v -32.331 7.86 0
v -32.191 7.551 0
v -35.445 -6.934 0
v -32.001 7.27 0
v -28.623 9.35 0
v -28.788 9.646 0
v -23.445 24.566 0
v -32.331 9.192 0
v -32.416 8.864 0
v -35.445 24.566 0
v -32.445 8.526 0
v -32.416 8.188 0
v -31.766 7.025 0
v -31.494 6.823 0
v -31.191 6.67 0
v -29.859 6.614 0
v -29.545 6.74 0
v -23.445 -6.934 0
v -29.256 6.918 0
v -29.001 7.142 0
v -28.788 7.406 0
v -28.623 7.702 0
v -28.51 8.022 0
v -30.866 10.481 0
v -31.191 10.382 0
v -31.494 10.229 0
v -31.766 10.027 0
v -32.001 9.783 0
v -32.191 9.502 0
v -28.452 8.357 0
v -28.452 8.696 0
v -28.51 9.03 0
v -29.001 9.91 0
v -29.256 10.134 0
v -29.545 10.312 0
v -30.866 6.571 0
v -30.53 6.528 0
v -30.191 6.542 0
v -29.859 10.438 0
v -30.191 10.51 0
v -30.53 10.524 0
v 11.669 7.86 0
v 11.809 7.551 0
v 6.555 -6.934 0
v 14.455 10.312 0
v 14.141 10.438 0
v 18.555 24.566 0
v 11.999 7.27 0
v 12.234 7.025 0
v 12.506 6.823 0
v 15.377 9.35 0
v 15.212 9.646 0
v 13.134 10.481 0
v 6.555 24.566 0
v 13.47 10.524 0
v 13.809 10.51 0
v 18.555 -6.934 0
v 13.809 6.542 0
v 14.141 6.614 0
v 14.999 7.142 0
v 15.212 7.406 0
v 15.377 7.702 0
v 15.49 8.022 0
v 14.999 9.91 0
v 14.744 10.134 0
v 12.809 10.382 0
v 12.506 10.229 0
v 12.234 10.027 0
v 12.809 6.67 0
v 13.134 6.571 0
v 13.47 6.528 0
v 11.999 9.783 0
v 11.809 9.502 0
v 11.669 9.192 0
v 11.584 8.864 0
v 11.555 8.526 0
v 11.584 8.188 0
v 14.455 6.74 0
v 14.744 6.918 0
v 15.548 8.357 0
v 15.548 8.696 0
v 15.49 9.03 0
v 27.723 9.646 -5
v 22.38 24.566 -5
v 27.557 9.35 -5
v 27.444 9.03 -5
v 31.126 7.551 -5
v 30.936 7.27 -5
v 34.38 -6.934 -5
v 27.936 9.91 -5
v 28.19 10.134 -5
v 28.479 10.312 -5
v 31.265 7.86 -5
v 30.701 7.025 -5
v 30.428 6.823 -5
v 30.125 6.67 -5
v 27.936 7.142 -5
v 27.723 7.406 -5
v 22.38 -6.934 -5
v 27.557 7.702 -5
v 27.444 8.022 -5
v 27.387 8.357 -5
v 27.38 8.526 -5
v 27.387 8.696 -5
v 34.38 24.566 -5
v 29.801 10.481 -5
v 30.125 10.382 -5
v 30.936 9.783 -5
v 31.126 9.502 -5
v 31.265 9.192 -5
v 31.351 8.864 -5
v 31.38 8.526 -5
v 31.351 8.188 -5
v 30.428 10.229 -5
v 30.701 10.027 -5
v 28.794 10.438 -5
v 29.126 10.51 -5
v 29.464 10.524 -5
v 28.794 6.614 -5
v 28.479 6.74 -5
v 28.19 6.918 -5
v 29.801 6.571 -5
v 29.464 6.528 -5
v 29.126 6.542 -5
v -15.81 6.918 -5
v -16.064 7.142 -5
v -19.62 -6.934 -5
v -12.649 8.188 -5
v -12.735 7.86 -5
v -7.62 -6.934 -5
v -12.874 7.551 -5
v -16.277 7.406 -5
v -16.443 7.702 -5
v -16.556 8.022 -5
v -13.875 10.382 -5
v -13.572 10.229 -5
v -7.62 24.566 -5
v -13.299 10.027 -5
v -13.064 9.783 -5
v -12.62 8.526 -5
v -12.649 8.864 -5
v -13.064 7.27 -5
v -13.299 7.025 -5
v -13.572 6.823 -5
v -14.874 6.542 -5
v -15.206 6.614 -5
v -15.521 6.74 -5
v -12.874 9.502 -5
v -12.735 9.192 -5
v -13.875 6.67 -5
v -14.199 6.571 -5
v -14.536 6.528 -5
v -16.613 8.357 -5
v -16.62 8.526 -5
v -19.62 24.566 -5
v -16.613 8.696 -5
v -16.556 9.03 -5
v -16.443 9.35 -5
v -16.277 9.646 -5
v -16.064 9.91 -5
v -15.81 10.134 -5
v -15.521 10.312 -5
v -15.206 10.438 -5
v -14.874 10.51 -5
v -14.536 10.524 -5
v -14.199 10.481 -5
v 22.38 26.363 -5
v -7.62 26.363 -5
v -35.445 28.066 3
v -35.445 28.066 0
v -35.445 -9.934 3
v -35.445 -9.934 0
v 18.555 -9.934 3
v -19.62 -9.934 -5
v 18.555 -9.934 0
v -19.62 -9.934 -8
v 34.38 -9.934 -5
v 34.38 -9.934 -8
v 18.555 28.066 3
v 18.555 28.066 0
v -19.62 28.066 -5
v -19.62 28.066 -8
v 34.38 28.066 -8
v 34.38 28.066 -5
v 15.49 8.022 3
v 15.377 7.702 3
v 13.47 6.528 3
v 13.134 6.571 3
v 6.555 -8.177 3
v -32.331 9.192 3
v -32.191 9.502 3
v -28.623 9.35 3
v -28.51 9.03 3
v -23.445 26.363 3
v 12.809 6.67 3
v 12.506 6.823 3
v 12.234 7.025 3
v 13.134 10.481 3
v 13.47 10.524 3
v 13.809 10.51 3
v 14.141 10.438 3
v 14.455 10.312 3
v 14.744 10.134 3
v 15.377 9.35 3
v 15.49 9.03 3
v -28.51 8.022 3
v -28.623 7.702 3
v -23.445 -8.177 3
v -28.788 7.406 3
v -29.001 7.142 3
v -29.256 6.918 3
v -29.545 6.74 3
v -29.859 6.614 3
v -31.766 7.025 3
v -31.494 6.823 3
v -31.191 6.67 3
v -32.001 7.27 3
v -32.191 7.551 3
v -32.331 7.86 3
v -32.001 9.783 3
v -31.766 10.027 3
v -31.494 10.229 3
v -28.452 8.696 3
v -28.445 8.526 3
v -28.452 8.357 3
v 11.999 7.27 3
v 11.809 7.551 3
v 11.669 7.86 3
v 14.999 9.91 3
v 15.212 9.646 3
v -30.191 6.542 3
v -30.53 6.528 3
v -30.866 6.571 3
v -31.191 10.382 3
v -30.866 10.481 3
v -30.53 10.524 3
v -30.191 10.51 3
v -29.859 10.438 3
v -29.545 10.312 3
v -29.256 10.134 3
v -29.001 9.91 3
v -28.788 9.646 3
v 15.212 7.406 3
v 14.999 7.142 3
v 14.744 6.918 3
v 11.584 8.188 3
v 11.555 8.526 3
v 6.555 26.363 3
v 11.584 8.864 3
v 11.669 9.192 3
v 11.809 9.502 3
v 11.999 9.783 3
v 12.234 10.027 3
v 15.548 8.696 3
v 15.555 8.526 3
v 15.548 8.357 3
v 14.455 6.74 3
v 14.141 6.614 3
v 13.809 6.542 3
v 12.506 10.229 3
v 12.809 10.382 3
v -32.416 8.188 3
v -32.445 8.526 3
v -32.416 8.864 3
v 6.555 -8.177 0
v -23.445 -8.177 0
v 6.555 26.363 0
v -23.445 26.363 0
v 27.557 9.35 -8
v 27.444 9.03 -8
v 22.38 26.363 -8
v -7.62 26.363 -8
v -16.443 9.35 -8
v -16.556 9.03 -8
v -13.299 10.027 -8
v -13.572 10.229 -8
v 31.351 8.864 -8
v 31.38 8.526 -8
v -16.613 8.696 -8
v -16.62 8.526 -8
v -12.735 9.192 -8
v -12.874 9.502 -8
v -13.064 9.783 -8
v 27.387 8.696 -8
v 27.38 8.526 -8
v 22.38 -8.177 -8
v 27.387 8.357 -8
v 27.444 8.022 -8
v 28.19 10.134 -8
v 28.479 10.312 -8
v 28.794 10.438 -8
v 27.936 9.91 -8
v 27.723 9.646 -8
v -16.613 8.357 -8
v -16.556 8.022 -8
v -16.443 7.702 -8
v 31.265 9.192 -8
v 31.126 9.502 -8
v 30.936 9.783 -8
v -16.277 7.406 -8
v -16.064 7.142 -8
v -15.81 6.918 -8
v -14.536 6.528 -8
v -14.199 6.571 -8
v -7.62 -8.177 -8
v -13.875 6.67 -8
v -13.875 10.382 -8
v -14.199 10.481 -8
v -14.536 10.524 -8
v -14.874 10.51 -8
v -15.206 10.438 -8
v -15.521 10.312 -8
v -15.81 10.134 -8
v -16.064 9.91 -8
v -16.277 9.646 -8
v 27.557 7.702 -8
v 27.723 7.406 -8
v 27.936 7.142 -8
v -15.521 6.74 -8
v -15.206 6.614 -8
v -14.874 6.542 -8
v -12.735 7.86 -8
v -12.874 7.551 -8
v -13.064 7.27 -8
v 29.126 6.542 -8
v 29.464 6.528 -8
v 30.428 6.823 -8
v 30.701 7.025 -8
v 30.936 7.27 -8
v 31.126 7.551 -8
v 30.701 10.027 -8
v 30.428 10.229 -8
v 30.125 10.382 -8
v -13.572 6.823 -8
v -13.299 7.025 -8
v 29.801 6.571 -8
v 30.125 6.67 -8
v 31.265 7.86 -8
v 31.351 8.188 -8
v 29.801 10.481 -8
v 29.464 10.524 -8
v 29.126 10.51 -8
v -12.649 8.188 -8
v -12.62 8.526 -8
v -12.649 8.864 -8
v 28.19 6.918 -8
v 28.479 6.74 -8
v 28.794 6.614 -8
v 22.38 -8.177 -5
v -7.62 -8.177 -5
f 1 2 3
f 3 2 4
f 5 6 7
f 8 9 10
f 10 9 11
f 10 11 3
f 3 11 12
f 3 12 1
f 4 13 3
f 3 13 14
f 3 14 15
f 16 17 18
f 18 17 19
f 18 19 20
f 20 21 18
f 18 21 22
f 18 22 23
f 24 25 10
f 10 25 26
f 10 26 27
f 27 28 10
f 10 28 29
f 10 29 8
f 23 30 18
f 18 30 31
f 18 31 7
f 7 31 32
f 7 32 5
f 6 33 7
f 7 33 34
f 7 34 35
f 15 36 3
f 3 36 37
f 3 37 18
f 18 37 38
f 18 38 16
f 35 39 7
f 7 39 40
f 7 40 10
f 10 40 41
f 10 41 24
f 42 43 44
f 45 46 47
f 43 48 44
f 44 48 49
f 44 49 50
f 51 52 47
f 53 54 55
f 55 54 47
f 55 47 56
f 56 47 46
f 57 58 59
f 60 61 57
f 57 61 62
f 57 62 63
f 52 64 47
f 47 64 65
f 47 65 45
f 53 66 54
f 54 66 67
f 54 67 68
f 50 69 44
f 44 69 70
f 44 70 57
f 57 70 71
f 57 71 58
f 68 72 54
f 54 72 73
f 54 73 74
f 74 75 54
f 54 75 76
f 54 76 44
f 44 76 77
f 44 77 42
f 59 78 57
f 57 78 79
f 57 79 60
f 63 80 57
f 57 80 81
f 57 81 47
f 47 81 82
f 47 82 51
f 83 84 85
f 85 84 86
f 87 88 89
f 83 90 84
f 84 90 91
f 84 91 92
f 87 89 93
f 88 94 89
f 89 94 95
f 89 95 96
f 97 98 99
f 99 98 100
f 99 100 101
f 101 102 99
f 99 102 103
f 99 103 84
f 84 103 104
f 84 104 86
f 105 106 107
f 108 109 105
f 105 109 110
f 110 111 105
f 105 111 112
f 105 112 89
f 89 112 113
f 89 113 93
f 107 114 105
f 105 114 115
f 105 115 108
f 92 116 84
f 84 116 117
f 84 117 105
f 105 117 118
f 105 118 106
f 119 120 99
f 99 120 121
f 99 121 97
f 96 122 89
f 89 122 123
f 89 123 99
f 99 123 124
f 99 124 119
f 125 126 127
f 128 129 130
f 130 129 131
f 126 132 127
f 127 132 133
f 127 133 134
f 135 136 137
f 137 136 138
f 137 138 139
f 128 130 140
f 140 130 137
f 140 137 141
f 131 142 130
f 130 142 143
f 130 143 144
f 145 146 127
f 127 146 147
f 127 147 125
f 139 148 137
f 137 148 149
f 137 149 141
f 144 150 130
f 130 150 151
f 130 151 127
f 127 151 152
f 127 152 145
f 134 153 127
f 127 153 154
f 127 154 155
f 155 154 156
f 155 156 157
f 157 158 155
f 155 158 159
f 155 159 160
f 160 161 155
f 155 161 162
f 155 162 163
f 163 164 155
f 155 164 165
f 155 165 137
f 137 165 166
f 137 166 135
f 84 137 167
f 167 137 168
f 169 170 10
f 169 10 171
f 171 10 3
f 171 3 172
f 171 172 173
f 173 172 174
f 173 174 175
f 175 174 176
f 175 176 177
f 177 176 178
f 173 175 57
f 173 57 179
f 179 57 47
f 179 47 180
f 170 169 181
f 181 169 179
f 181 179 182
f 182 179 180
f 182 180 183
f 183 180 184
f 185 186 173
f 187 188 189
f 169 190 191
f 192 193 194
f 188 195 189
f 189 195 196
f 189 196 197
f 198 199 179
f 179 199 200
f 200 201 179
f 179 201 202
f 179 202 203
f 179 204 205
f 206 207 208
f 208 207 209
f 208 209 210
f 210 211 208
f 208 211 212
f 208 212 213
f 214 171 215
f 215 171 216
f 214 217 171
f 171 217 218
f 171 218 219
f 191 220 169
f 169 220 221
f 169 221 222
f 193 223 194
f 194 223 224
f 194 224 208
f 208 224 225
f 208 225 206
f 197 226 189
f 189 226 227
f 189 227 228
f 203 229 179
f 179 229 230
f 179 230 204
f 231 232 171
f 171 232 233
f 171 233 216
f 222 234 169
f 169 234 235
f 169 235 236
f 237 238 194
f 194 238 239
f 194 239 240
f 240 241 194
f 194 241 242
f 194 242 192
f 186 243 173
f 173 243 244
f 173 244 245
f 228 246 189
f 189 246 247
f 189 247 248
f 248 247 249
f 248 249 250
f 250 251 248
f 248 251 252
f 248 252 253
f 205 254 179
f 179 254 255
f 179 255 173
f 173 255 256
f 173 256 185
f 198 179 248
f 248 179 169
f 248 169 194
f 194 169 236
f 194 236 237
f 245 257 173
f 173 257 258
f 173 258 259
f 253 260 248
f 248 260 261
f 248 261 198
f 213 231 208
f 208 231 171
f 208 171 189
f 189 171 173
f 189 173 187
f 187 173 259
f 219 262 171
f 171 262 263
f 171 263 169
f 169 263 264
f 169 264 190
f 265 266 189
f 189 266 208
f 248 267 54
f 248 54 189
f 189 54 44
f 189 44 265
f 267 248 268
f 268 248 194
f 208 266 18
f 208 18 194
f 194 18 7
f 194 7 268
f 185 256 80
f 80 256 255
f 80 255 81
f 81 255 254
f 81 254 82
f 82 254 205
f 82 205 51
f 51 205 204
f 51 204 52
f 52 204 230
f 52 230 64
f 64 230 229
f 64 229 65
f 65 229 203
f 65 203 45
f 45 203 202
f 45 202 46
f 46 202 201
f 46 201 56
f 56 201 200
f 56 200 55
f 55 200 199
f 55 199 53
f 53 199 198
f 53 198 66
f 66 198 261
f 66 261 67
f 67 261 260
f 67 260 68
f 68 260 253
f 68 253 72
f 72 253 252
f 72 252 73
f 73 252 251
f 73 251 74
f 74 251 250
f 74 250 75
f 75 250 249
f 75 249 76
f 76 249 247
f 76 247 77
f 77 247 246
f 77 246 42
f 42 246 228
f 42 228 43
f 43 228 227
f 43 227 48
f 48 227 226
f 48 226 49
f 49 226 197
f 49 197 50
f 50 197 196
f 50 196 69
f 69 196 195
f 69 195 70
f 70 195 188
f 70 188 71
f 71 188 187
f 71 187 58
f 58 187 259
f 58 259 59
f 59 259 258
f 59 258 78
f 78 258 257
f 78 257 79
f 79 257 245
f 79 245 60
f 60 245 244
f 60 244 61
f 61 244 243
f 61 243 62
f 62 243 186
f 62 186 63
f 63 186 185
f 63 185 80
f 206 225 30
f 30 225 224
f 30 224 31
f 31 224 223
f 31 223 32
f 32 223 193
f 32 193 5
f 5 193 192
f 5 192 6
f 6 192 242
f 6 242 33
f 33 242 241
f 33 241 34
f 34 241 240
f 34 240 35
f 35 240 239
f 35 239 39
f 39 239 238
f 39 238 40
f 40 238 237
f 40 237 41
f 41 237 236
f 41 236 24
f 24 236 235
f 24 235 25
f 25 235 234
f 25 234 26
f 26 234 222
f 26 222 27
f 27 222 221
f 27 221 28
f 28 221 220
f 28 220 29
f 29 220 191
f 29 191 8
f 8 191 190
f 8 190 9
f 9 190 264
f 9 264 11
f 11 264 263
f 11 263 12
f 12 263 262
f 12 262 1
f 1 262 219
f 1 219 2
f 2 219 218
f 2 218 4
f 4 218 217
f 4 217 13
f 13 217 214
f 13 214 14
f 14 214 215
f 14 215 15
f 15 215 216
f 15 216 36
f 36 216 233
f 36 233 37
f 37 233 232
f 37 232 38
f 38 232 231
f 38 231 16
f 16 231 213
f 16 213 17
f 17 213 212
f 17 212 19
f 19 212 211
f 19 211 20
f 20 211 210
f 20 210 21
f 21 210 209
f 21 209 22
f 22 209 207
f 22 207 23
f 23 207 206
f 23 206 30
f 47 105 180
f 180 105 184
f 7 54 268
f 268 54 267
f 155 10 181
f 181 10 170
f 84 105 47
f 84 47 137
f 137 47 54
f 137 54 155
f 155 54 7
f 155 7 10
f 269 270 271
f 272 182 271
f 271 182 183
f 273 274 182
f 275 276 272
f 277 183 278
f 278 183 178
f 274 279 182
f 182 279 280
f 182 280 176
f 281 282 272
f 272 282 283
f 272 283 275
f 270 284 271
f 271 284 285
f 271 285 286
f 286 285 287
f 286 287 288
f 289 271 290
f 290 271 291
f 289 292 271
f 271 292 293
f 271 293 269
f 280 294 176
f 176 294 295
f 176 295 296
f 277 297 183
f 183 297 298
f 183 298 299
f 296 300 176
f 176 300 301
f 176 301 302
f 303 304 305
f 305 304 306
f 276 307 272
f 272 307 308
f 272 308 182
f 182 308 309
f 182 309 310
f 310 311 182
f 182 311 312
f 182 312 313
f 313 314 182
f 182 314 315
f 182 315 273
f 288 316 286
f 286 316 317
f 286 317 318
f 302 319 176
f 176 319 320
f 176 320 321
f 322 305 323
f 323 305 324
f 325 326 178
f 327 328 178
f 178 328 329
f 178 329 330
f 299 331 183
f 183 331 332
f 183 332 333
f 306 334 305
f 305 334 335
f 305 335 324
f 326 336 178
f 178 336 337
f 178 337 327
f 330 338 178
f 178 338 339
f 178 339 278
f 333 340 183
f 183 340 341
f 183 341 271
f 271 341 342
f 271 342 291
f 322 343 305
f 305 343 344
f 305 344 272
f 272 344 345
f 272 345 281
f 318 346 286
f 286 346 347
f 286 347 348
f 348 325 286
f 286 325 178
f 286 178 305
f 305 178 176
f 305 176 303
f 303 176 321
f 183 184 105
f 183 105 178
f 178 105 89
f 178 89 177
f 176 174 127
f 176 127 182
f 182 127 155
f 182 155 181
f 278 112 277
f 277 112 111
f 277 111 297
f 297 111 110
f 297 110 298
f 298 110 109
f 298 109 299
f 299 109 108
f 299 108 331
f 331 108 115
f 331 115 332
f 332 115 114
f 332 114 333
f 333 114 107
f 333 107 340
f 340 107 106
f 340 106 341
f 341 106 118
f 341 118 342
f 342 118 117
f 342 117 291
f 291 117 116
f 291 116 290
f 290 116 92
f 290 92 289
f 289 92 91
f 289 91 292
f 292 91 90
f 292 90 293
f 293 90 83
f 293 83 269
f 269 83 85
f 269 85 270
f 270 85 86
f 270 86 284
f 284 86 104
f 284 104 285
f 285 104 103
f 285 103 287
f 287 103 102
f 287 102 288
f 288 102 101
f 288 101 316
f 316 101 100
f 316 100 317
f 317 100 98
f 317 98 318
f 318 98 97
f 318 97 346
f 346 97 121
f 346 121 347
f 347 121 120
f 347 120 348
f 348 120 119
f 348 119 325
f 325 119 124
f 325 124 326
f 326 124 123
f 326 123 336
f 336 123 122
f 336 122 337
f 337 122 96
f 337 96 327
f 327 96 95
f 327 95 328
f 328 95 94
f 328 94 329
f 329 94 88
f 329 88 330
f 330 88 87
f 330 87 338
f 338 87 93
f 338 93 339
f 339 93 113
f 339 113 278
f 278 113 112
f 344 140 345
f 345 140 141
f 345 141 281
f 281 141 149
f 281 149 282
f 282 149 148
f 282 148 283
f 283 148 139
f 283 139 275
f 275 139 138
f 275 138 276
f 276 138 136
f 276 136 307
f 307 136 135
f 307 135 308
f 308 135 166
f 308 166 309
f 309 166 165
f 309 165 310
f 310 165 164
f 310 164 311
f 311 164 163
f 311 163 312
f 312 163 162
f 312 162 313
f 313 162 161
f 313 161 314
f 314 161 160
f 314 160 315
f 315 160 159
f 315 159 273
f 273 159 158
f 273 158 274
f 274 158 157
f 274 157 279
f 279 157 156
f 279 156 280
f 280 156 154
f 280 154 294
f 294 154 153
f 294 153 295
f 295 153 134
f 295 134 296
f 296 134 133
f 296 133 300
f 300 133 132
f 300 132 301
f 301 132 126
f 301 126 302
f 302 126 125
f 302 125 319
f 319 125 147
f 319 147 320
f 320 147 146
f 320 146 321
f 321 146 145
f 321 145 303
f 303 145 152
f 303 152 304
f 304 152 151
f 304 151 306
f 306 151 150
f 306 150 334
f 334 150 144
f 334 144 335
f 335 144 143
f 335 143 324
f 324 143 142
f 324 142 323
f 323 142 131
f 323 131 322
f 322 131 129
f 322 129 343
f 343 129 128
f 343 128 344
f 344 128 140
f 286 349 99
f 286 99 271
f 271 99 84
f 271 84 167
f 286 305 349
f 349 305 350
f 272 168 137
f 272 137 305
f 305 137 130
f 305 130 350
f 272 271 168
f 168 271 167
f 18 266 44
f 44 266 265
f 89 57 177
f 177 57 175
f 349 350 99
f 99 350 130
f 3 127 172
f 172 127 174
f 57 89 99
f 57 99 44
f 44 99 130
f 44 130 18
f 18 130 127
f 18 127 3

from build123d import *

# Parameters (mm, degrees)
SKETCH_1_W          = 54
SKETCH_1_H          = 38
EXTRUDE_1_DEPTH     = 3
SKETCH_3_R          = 2
SKETCH_3_W          = 30
SKETCH_3_H          = 34.54
CUT_EXTRUDE_1_DEPTH = 34.54
SKETCH_4_W          = 54
SKETCH_4_H          = 38
SKETCH_4_R          = 2
SKETCH_4_W_2        = 30
SKETCH_4_H_2        = 34.54
EXTRUDE_2_DEPTH     = 3
EXTRUDE_3_DEPTH     = 3.5
EXTRUDE_4_DEPTH     = 3


with BuildPart() as part:
    # 草图1 → 凸台-拉伸1 (new body)
    with BuildSketch(Plane.XY):
        with Locations((-8.445035234, 9.066128075)):
            Rectangle(SKETCH_1_W, SKETCH_1_H)
    extrude(amount=EXTRUDE_1_DEPTH)

    # 草图3 → 切除-拉伸1 (cut)
    with BuildSketch(Plane(origin=(0, 0, 0), x_dir=(-1, 0, 0), z_dir=(0, 0, -1))):
        with Locations((-13.554964766, 8.526128075)):
            Circle(SKETCH_3_R)
        with Locations((30.445035234, 8.526128075)):
            Circle(SKETCH_3_R)
        with Locations((8.445035234, 9.092740444)):
            Rectangle(SKETCH_3_W, SKETCH_3_H)
    extrude(amount=-CUT_EXTRUDE_1_DEPTH, mode=Mode.SUBTRACT)



with BuildPart() as body_2:
    # 草图4 → 凸台-拉伸2 (new body)
    with BuildSketch(Plane(origin=(15.82462623, 0, -5), x_dir=(-1, 0, 0), z_dir=(0, 0, -1))):
        with Locations((8.445035234, 9.066128075)):
            Rectangle(SKETCH_4_W, SKETCH_4_H)
        with Locations((-13.554964766, 8.526128075)):
            Circle(SKETCH_4_R, mode=Mode.SUBTRACT)
        with Locations((30.445035234, 8.526128075)):
            Circle(SKETCH_4_R, mode=Mode.SUBTRACT)
        with Locations((8.445035234, 9.092740444)):
            Rectangle(SKETCH_4_W_2, SKETCH_4_H_2, mode=Mode.SUBTRACT)
    extrude(amount=EXTRUDE_2_DEPTH)


with BuildPart() as part_1:
    add(part.part)

    add(body_2.part)  # 凸台-拉伸3 merges body 2
    # 草图5 → 凸台-拉伸3 (add)
    with BuildSketch(Plane(origin=(0, 28.066128075, 0), x_dir=(1, 0, 0), z_dir=(0, 1, 0))):
        Polygon((-19.620409004, 5), (-35.445035234, 0), (18.554964766, 0), (34.379590996, 5), align=None)
    extrude(amount=-EXTRUDE_3_DEPTH)

    # 草图6 → 凸台-拉伸4 (add)
    with BuildSketch(Plane.XZ.offset(9.933871925)):
        Polygon((-35.445035234, 0), (-19.620409004, -5), (34.379590996, -5), (18.554964766, 0), align=None)
    extrude(amount=-EXTRUDE_4_DEPTH)


solid = part_1.part
